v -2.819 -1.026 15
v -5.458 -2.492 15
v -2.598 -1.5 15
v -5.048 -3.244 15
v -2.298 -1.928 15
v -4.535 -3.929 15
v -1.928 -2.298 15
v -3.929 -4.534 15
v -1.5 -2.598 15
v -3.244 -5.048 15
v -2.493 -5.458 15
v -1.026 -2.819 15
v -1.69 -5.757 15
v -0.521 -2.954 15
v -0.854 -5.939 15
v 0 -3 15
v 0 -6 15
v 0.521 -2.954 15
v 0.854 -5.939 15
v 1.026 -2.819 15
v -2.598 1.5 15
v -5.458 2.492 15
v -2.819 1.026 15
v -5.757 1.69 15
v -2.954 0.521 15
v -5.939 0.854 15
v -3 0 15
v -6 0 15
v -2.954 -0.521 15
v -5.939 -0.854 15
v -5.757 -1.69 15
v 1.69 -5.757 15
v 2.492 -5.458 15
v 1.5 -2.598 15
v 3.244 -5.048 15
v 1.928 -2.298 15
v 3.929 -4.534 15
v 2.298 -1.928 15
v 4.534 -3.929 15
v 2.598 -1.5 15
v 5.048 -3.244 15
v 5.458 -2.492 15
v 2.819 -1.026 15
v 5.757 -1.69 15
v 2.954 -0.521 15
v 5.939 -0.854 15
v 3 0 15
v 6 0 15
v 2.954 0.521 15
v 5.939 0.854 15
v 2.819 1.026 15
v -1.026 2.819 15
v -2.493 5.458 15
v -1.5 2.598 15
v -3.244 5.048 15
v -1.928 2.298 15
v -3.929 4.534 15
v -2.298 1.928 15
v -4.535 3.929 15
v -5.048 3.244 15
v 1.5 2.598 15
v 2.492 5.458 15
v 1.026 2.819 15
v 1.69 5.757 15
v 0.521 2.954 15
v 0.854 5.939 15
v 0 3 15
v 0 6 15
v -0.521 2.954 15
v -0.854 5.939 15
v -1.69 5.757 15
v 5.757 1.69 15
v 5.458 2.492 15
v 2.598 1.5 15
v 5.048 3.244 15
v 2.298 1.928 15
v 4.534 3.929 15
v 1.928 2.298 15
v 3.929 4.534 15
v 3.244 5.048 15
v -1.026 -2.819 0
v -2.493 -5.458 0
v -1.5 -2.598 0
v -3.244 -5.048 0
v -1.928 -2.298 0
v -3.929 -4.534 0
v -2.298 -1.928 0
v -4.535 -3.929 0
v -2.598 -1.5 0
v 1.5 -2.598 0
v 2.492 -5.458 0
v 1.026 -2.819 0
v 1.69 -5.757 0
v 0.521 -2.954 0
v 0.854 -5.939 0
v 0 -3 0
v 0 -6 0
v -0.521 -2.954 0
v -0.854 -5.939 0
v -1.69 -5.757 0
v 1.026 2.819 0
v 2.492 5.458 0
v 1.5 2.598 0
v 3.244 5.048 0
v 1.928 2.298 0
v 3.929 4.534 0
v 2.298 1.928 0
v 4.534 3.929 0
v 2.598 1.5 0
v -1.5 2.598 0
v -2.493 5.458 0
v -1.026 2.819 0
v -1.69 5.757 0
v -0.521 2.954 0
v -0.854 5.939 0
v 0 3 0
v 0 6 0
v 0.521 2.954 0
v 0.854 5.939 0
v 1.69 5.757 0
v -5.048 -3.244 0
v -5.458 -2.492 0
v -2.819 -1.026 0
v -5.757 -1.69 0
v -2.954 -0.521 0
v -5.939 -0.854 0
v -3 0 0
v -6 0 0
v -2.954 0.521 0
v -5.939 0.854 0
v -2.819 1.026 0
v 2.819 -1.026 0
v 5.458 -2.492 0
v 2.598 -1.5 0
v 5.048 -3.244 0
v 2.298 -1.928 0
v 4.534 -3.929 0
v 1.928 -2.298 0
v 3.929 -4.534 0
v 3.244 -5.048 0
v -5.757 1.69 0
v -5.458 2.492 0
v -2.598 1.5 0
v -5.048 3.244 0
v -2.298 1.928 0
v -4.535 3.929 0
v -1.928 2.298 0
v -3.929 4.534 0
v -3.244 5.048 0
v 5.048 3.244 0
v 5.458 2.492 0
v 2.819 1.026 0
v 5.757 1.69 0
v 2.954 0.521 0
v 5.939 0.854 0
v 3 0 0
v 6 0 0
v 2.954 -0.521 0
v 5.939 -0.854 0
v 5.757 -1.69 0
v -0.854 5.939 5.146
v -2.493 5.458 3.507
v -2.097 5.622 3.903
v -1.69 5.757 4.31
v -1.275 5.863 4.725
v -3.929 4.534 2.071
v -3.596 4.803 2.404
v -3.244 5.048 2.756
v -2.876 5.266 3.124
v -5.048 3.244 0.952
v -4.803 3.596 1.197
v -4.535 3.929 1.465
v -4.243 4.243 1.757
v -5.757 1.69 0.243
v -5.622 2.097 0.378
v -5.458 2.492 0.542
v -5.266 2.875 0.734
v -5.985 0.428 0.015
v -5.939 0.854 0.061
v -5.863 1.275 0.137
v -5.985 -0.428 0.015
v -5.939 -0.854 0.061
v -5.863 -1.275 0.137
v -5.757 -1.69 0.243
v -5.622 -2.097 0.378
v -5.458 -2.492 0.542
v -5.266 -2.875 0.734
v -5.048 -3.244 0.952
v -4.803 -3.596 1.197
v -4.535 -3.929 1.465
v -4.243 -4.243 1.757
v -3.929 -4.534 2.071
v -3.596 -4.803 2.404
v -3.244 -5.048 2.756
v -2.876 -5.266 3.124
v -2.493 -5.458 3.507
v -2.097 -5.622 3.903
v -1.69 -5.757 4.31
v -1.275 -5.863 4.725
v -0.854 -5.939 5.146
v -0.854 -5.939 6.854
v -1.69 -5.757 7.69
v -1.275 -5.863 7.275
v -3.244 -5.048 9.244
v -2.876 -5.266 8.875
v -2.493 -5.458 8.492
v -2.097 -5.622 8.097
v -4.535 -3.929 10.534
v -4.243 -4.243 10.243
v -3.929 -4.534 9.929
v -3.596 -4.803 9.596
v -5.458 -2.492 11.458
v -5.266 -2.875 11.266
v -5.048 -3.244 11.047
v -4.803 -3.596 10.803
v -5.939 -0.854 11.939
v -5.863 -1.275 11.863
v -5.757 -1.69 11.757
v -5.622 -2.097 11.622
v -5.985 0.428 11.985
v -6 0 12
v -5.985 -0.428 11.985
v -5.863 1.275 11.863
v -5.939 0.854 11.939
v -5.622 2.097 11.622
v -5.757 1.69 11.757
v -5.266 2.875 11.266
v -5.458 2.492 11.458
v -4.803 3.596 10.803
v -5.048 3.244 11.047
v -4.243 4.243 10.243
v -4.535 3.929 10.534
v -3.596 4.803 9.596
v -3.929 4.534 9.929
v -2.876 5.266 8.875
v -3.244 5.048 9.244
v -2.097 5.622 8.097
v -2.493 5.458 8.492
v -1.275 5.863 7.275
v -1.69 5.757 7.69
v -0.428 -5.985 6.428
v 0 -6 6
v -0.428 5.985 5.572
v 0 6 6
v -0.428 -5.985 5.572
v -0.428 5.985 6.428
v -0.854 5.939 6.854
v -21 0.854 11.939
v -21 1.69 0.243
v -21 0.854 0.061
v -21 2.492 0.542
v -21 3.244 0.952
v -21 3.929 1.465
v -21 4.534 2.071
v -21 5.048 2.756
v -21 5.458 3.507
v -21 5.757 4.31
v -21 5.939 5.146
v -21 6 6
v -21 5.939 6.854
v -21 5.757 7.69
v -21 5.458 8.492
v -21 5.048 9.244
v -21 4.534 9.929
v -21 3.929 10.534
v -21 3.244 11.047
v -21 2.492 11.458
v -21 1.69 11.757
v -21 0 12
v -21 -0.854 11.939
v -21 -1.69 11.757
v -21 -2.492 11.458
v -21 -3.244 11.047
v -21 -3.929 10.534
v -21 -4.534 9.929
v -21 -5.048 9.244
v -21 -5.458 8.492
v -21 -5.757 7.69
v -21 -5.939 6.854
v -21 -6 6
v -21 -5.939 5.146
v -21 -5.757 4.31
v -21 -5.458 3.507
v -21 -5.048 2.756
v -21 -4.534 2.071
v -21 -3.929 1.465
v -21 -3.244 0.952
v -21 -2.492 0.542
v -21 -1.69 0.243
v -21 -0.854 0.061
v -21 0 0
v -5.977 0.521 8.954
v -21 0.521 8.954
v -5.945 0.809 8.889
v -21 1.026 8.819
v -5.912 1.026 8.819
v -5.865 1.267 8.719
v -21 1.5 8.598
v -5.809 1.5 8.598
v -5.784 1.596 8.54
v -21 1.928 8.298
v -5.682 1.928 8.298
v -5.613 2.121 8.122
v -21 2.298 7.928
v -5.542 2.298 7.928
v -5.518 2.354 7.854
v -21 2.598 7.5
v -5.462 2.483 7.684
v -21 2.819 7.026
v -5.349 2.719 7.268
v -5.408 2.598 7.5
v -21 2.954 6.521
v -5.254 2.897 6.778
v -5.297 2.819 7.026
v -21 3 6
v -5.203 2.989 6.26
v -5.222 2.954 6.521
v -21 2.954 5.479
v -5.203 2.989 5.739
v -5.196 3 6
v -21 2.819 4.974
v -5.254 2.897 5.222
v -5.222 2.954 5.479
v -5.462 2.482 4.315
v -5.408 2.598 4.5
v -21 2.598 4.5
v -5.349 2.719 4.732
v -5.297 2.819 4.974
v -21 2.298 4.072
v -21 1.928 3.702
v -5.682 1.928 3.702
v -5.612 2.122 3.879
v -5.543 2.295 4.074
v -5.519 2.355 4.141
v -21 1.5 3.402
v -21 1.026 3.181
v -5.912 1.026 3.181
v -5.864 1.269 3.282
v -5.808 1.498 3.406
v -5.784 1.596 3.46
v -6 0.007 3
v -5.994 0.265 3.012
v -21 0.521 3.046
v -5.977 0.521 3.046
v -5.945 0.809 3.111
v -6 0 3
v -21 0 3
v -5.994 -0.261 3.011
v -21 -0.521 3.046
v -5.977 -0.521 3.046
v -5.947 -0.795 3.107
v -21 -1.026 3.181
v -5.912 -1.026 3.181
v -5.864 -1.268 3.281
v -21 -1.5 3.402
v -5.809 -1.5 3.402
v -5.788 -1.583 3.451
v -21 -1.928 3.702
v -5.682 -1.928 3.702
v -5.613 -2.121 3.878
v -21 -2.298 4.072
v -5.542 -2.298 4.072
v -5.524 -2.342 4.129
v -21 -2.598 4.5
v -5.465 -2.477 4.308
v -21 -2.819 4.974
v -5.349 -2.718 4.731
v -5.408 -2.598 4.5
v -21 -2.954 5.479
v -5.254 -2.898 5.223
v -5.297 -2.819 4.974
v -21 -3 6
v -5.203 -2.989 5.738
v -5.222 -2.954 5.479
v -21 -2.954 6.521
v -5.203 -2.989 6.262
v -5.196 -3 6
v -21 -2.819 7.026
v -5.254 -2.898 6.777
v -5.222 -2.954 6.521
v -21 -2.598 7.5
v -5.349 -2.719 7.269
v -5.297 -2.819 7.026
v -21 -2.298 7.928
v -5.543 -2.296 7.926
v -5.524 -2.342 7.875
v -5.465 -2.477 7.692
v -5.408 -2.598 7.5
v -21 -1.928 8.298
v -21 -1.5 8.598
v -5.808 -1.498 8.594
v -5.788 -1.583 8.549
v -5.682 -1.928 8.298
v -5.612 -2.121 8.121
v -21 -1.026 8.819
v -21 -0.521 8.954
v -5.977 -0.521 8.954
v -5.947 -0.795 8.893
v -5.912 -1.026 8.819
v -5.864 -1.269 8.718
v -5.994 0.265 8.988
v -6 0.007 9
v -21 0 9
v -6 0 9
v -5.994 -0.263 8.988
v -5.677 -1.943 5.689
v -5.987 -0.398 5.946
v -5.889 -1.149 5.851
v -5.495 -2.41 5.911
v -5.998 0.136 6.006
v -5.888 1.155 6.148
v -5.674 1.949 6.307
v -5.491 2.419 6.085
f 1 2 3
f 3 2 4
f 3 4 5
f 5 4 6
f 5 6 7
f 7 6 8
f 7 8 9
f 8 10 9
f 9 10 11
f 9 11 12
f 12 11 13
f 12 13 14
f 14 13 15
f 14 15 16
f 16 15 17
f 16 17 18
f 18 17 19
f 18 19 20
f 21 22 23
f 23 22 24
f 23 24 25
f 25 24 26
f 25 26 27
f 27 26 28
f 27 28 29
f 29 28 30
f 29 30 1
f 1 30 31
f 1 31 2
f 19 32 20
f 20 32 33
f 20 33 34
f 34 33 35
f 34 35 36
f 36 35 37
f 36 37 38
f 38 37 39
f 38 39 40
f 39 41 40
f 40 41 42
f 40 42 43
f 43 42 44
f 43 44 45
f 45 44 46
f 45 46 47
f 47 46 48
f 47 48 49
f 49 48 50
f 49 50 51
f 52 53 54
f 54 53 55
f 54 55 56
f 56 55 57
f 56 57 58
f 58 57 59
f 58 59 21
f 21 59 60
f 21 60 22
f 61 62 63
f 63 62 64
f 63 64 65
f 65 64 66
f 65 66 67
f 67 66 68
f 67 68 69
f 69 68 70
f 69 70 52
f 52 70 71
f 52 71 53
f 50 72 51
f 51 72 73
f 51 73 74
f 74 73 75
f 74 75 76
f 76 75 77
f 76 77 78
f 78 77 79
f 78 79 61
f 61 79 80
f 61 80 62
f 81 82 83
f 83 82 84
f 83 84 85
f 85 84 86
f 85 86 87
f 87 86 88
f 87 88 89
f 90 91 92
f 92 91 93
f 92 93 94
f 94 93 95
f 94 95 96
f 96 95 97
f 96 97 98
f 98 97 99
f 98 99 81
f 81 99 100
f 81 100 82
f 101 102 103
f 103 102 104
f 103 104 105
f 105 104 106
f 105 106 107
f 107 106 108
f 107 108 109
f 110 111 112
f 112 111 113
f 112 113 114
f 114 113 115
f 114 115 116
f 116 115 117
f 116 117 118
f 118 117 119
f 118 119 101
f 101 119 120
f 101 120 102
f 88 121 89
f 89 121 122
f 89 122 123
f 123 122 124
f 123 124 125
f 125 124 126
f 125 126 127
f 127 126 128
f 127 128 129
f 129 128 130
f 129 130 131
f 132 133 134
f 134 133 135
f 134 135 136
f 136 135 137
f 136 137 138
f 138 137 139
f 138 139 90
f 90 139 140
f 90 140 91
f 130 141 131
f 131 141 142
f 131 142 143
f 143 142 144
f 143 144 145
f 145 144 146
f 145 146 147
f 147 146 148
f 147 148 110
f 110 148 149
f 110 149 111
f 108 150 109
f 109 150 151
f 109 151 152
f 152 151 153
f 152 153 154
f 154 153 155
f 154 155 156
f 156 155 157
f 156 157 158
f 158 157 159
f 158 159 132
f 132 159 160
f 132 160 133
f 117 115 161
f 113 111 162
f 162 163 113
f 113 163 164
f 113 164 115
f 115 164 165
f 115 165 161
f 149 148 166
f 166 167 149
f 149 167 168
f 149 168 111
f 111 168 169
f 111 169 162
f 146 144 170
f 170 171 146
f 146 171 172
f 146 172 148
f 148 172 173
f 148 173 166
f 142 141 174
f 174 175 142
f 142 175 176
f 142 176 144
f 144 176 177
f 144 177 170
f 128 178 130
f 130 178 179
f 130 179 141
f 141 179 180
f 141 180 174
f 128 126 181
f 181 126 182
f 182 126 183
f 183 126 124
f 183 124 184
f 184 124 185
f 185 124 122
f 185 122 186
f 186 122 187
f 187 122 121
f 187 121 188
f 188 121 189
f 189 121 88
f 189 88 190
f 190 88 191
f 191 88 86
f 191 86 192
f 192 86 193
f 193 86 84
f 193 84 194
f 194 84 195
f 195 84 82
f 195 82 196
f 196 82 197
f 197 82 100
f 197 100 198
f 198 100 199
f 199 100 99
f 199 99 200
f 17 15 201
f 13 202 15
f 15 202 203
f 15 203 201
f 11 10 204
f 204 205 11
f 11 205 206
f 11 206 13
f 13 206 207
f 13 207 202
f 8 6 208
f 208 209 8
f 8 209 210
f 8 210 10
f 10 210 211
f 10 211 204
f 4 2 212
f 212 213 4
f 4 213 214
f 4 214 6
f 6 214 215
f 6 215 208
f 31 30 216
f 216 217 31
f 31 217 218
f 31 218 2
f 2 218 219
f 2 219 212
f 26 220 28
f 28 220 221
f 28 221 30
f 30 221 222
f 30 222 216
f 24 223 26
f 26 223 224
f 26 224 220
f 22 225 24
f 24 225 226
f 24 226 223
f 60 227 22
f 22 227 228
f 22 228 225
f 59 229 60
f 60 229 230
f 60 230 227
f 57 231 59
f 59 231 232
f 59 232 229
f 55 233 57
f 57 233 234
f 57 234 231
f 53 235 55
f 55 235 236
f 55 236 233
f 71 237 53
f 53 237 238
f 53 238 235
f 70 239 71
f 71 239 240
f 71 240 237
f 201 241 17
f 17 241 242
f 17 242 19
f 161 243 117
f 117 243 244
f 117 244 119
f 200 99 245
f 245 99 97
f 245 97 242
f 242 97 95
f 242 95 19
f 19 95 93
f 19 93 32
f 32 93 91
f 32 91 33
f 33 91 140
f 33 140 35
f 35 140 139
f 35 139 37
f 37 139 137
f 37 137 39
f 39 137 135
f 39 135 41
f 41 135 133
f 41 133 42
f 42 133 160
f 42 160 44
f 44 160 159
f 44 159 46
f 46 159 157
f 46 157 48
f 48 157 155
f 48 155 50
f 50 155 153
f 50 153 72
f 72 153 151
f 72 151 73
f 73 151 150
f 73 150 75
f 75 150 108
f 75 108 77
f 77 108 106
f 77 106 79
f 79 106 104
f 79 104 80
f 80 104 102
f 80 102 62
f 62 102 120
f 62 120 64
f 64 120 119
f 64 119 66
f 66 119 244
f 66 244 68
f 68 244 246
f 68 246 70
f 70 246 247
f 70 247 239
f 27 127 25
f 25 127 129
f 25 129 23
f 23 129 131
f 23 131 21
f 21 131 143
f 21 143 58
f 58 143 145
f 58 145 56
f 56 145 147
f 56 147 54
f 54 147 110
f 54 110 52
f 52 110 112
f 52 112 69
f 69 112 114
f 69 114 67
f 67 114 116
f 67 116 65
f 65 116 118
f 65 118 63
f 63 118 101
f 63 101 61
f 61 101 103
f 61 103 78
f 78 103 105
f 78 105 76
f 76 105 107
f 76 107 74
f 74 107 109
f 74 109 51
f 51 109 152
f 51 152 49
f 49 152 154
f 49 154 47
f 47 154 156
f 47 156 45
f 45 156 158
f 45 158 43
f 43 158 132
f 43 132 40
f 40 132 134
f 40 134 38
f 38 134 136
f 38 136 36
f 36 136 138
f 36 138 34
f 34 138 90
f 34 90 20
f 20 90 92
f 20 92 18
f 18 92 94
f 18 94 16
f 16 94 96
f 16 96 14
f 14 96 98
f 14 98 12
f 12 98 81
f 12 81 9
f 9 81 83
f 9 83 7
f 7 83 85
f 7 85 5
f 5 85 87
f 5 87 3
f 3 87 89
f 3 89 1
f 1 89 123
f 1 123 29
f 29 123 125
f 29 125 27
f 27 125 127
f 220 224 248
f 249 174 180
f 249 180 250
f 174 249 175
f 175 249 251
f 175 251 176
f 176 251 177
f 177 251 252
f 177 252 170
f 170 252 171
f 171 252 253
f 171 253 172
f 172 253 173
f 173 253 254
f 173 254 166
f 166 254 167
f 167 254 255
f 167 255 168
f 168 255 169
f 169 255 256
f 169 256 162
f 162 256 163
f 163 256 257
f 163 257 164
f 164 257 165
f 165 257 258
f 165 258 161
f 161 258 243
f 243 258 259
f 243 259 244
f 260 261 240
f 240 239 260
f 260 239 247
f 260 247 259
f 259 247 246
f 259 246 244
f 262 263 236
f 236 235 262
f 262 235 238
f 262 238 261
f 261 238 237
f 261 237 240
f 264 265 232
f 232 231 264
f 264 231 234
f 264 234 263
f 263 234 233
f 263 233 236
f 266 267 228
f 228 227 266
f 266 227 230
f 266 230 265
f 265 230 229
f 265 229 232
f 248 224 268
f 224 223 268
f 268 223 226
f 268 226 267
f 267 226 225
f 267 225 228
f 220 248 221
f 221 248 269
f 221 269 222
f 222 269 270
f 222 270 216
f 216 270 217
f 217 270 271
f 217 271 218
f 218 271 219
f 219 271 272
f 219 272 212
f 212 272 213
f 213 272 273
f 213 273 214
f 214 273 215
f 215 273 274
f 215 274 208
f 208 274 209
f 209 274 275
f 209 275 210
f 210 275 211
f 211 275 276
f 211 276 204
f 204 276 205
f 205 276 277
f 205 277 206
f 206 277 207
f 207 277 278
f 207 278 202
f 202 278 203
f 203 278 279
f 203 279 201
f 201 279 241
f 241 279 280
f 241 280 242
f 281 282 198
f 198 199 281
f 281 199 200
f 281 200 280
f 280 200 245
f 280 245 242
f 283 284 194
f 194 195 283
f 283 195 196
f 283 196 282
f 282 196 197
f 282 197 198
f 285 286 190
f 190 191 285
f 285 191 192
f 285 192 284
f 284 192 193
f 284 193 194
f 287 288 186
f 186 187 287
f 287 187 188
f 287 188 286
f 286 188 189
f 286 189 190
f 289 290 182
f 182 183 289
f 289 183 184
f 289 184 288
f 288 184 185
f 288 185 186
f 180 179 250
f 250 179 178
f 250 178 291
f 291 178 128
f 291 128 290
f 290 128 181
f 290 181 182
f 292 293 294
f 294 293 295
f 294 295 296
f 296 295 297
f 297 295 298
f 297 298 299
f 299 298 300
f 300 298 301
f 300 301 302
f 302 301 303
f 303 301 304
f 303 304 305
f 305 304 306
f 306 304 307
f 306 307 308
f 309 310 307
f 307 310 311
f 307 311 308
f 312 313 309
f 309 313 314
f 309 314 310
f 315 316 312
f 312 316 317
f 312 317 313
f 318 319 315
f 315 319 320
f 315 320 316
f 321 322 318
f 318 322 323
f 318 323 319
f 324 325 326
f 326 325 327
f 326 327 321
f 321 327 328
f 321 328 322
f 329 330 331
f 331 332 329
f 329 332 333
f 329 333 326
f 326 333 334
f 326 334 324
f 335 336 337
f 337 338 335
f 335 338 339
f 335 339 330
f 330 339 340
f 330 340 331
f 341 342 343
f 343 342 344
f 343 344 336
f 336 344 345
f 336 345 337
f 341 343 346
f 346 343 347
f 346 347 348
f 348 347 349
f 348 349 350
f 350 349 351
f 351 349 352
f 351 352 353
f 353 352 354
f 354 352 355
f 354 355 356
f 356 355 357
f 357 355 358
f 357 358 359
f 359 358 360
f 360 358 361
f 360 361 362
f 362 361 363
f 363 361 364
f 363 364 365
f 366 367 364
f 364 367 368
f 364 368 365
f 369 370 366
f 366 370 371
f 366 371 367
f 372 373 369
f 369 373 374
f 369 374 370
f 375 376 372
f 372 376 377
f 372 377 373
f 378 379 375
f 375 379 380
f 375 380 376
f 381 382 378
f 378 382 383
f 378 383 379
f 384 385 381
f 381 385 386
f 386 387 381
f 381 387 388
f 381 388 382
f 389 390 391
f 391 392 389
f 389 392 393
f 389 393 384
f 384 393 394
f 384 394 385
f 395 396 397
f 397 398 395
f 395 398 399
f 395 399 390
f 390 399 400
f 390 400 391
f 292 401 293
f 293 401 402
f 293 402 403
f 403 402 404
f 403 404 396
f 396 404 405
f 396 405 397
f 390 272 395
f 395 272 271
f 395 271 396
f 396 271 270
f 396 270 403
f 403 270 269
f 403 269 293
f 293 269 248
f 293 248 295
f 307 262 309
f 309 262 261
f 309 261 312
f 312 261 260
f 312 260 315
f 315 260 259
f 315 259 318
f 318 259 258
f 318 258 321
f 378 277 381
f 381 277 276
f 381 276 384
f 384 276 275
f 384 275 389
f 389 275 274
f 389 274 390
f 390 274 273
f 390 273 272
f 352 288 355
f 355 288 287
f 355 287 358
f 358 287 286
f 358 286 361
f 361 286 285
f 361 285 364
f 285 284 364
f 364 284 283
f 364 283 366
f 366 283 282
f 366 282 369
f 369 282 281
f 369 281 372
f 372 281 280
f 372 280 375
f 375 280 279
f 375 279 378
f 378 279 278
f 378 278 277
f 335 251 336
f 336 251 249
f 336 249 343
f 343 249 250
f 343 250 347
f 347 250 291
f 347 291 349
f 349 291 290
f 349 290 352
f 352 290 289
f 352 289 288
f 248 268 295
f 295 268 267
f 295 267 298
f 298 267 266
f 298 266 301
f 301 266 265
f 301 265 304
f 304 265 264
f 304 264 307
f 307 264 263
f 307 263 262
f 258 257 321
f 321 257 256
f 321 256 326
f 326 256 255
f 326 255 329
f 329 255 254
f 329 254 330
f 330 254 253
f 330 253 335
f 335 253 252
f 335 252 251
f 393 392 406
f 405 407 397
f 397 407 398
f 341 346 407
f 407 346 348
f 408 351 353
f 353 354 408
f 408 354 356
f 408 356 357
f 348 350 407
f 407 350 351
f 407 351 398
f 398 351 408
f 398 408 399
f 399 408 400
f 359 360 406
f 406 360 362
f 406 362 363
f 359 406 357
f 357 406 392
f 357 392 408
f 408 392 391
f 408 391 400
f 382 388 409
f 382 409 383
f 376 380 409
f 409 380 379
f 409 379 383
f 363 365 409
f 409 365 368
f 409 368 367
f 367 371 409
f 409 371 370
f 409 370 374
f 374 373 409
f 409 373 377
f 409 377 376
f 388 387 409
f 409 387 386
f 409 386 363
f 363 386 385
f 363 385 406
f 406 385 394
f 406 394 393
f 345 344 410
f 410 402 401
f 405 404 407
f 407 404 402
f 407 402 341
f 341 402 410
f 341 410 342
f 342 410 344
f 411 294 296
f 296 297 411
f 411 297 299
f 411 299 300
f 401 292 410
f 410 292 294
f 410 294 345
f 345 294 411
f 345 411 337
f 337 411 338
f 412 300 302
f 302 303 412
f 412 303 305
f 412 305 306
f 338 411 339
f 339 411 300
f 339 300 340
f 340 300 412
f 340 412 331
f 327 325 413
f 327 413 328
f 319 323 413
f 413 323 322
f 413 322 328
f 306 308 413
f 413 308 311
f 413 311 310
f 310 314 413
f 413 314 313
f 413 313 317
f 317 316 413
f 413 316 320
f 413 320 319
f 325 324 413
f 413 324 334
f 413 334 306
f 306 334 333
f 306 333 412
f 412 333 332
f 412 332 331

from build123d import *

# Parameters (mm, degrees)
SKETCH1_R           = 6
SKETCH1_R_2         = 3
BOSS_EXTRUDE1_DEPTH = 15
SKETCH2_R           = 6
SKETCH2_R_2         = 3
BOSS_EXTRUDE2_DEPTH = 21
SKETCH3_R           = 3
CUT_EXTRUDE1_DEPTH  = 16.0000001


with BuildPart() as part:
    # Sketch1 → Boss-Extrude1 (new body)
    with BuildSketch(Plane.XY):
        Circle(SKETCH1_R)
        Circle(SKETCH1_R_2, mode=Mode.SUBTRACT)
    extrude(amount=BOSS_EXTRUDE1_DEPTH)

    # Sketch2 → Boss-Extrude2 (add)
    with BuildSketch(Plane(origin=(0, 0, 0), x_dir=(0, 0, -1), z_dir=(1, 0, 0))):
        with Locations((-6, 0)):
            Circle(SKETCH2_R)
        with Locations((-6, 0)):
            Circle(SKETCH2_R_2, mode=Mode.SUBTRACT)
    extrude(amount=-BOSS_EXTRUDE2_DEPTH)

    # Sketch3 → Cut-Extrude1 (cut, through all)
    with BuildSketch(Plane(origin=(0, 0, 0), x_dir=(-1, 0, 0), z_dir=(0, 0, -1))):
        Circle(SKETCH3_R)
    extrude(amount=-CUT_EXTRUDE1_DEPTH, mode=Mode.SUBTRACT)


solid = part.part
